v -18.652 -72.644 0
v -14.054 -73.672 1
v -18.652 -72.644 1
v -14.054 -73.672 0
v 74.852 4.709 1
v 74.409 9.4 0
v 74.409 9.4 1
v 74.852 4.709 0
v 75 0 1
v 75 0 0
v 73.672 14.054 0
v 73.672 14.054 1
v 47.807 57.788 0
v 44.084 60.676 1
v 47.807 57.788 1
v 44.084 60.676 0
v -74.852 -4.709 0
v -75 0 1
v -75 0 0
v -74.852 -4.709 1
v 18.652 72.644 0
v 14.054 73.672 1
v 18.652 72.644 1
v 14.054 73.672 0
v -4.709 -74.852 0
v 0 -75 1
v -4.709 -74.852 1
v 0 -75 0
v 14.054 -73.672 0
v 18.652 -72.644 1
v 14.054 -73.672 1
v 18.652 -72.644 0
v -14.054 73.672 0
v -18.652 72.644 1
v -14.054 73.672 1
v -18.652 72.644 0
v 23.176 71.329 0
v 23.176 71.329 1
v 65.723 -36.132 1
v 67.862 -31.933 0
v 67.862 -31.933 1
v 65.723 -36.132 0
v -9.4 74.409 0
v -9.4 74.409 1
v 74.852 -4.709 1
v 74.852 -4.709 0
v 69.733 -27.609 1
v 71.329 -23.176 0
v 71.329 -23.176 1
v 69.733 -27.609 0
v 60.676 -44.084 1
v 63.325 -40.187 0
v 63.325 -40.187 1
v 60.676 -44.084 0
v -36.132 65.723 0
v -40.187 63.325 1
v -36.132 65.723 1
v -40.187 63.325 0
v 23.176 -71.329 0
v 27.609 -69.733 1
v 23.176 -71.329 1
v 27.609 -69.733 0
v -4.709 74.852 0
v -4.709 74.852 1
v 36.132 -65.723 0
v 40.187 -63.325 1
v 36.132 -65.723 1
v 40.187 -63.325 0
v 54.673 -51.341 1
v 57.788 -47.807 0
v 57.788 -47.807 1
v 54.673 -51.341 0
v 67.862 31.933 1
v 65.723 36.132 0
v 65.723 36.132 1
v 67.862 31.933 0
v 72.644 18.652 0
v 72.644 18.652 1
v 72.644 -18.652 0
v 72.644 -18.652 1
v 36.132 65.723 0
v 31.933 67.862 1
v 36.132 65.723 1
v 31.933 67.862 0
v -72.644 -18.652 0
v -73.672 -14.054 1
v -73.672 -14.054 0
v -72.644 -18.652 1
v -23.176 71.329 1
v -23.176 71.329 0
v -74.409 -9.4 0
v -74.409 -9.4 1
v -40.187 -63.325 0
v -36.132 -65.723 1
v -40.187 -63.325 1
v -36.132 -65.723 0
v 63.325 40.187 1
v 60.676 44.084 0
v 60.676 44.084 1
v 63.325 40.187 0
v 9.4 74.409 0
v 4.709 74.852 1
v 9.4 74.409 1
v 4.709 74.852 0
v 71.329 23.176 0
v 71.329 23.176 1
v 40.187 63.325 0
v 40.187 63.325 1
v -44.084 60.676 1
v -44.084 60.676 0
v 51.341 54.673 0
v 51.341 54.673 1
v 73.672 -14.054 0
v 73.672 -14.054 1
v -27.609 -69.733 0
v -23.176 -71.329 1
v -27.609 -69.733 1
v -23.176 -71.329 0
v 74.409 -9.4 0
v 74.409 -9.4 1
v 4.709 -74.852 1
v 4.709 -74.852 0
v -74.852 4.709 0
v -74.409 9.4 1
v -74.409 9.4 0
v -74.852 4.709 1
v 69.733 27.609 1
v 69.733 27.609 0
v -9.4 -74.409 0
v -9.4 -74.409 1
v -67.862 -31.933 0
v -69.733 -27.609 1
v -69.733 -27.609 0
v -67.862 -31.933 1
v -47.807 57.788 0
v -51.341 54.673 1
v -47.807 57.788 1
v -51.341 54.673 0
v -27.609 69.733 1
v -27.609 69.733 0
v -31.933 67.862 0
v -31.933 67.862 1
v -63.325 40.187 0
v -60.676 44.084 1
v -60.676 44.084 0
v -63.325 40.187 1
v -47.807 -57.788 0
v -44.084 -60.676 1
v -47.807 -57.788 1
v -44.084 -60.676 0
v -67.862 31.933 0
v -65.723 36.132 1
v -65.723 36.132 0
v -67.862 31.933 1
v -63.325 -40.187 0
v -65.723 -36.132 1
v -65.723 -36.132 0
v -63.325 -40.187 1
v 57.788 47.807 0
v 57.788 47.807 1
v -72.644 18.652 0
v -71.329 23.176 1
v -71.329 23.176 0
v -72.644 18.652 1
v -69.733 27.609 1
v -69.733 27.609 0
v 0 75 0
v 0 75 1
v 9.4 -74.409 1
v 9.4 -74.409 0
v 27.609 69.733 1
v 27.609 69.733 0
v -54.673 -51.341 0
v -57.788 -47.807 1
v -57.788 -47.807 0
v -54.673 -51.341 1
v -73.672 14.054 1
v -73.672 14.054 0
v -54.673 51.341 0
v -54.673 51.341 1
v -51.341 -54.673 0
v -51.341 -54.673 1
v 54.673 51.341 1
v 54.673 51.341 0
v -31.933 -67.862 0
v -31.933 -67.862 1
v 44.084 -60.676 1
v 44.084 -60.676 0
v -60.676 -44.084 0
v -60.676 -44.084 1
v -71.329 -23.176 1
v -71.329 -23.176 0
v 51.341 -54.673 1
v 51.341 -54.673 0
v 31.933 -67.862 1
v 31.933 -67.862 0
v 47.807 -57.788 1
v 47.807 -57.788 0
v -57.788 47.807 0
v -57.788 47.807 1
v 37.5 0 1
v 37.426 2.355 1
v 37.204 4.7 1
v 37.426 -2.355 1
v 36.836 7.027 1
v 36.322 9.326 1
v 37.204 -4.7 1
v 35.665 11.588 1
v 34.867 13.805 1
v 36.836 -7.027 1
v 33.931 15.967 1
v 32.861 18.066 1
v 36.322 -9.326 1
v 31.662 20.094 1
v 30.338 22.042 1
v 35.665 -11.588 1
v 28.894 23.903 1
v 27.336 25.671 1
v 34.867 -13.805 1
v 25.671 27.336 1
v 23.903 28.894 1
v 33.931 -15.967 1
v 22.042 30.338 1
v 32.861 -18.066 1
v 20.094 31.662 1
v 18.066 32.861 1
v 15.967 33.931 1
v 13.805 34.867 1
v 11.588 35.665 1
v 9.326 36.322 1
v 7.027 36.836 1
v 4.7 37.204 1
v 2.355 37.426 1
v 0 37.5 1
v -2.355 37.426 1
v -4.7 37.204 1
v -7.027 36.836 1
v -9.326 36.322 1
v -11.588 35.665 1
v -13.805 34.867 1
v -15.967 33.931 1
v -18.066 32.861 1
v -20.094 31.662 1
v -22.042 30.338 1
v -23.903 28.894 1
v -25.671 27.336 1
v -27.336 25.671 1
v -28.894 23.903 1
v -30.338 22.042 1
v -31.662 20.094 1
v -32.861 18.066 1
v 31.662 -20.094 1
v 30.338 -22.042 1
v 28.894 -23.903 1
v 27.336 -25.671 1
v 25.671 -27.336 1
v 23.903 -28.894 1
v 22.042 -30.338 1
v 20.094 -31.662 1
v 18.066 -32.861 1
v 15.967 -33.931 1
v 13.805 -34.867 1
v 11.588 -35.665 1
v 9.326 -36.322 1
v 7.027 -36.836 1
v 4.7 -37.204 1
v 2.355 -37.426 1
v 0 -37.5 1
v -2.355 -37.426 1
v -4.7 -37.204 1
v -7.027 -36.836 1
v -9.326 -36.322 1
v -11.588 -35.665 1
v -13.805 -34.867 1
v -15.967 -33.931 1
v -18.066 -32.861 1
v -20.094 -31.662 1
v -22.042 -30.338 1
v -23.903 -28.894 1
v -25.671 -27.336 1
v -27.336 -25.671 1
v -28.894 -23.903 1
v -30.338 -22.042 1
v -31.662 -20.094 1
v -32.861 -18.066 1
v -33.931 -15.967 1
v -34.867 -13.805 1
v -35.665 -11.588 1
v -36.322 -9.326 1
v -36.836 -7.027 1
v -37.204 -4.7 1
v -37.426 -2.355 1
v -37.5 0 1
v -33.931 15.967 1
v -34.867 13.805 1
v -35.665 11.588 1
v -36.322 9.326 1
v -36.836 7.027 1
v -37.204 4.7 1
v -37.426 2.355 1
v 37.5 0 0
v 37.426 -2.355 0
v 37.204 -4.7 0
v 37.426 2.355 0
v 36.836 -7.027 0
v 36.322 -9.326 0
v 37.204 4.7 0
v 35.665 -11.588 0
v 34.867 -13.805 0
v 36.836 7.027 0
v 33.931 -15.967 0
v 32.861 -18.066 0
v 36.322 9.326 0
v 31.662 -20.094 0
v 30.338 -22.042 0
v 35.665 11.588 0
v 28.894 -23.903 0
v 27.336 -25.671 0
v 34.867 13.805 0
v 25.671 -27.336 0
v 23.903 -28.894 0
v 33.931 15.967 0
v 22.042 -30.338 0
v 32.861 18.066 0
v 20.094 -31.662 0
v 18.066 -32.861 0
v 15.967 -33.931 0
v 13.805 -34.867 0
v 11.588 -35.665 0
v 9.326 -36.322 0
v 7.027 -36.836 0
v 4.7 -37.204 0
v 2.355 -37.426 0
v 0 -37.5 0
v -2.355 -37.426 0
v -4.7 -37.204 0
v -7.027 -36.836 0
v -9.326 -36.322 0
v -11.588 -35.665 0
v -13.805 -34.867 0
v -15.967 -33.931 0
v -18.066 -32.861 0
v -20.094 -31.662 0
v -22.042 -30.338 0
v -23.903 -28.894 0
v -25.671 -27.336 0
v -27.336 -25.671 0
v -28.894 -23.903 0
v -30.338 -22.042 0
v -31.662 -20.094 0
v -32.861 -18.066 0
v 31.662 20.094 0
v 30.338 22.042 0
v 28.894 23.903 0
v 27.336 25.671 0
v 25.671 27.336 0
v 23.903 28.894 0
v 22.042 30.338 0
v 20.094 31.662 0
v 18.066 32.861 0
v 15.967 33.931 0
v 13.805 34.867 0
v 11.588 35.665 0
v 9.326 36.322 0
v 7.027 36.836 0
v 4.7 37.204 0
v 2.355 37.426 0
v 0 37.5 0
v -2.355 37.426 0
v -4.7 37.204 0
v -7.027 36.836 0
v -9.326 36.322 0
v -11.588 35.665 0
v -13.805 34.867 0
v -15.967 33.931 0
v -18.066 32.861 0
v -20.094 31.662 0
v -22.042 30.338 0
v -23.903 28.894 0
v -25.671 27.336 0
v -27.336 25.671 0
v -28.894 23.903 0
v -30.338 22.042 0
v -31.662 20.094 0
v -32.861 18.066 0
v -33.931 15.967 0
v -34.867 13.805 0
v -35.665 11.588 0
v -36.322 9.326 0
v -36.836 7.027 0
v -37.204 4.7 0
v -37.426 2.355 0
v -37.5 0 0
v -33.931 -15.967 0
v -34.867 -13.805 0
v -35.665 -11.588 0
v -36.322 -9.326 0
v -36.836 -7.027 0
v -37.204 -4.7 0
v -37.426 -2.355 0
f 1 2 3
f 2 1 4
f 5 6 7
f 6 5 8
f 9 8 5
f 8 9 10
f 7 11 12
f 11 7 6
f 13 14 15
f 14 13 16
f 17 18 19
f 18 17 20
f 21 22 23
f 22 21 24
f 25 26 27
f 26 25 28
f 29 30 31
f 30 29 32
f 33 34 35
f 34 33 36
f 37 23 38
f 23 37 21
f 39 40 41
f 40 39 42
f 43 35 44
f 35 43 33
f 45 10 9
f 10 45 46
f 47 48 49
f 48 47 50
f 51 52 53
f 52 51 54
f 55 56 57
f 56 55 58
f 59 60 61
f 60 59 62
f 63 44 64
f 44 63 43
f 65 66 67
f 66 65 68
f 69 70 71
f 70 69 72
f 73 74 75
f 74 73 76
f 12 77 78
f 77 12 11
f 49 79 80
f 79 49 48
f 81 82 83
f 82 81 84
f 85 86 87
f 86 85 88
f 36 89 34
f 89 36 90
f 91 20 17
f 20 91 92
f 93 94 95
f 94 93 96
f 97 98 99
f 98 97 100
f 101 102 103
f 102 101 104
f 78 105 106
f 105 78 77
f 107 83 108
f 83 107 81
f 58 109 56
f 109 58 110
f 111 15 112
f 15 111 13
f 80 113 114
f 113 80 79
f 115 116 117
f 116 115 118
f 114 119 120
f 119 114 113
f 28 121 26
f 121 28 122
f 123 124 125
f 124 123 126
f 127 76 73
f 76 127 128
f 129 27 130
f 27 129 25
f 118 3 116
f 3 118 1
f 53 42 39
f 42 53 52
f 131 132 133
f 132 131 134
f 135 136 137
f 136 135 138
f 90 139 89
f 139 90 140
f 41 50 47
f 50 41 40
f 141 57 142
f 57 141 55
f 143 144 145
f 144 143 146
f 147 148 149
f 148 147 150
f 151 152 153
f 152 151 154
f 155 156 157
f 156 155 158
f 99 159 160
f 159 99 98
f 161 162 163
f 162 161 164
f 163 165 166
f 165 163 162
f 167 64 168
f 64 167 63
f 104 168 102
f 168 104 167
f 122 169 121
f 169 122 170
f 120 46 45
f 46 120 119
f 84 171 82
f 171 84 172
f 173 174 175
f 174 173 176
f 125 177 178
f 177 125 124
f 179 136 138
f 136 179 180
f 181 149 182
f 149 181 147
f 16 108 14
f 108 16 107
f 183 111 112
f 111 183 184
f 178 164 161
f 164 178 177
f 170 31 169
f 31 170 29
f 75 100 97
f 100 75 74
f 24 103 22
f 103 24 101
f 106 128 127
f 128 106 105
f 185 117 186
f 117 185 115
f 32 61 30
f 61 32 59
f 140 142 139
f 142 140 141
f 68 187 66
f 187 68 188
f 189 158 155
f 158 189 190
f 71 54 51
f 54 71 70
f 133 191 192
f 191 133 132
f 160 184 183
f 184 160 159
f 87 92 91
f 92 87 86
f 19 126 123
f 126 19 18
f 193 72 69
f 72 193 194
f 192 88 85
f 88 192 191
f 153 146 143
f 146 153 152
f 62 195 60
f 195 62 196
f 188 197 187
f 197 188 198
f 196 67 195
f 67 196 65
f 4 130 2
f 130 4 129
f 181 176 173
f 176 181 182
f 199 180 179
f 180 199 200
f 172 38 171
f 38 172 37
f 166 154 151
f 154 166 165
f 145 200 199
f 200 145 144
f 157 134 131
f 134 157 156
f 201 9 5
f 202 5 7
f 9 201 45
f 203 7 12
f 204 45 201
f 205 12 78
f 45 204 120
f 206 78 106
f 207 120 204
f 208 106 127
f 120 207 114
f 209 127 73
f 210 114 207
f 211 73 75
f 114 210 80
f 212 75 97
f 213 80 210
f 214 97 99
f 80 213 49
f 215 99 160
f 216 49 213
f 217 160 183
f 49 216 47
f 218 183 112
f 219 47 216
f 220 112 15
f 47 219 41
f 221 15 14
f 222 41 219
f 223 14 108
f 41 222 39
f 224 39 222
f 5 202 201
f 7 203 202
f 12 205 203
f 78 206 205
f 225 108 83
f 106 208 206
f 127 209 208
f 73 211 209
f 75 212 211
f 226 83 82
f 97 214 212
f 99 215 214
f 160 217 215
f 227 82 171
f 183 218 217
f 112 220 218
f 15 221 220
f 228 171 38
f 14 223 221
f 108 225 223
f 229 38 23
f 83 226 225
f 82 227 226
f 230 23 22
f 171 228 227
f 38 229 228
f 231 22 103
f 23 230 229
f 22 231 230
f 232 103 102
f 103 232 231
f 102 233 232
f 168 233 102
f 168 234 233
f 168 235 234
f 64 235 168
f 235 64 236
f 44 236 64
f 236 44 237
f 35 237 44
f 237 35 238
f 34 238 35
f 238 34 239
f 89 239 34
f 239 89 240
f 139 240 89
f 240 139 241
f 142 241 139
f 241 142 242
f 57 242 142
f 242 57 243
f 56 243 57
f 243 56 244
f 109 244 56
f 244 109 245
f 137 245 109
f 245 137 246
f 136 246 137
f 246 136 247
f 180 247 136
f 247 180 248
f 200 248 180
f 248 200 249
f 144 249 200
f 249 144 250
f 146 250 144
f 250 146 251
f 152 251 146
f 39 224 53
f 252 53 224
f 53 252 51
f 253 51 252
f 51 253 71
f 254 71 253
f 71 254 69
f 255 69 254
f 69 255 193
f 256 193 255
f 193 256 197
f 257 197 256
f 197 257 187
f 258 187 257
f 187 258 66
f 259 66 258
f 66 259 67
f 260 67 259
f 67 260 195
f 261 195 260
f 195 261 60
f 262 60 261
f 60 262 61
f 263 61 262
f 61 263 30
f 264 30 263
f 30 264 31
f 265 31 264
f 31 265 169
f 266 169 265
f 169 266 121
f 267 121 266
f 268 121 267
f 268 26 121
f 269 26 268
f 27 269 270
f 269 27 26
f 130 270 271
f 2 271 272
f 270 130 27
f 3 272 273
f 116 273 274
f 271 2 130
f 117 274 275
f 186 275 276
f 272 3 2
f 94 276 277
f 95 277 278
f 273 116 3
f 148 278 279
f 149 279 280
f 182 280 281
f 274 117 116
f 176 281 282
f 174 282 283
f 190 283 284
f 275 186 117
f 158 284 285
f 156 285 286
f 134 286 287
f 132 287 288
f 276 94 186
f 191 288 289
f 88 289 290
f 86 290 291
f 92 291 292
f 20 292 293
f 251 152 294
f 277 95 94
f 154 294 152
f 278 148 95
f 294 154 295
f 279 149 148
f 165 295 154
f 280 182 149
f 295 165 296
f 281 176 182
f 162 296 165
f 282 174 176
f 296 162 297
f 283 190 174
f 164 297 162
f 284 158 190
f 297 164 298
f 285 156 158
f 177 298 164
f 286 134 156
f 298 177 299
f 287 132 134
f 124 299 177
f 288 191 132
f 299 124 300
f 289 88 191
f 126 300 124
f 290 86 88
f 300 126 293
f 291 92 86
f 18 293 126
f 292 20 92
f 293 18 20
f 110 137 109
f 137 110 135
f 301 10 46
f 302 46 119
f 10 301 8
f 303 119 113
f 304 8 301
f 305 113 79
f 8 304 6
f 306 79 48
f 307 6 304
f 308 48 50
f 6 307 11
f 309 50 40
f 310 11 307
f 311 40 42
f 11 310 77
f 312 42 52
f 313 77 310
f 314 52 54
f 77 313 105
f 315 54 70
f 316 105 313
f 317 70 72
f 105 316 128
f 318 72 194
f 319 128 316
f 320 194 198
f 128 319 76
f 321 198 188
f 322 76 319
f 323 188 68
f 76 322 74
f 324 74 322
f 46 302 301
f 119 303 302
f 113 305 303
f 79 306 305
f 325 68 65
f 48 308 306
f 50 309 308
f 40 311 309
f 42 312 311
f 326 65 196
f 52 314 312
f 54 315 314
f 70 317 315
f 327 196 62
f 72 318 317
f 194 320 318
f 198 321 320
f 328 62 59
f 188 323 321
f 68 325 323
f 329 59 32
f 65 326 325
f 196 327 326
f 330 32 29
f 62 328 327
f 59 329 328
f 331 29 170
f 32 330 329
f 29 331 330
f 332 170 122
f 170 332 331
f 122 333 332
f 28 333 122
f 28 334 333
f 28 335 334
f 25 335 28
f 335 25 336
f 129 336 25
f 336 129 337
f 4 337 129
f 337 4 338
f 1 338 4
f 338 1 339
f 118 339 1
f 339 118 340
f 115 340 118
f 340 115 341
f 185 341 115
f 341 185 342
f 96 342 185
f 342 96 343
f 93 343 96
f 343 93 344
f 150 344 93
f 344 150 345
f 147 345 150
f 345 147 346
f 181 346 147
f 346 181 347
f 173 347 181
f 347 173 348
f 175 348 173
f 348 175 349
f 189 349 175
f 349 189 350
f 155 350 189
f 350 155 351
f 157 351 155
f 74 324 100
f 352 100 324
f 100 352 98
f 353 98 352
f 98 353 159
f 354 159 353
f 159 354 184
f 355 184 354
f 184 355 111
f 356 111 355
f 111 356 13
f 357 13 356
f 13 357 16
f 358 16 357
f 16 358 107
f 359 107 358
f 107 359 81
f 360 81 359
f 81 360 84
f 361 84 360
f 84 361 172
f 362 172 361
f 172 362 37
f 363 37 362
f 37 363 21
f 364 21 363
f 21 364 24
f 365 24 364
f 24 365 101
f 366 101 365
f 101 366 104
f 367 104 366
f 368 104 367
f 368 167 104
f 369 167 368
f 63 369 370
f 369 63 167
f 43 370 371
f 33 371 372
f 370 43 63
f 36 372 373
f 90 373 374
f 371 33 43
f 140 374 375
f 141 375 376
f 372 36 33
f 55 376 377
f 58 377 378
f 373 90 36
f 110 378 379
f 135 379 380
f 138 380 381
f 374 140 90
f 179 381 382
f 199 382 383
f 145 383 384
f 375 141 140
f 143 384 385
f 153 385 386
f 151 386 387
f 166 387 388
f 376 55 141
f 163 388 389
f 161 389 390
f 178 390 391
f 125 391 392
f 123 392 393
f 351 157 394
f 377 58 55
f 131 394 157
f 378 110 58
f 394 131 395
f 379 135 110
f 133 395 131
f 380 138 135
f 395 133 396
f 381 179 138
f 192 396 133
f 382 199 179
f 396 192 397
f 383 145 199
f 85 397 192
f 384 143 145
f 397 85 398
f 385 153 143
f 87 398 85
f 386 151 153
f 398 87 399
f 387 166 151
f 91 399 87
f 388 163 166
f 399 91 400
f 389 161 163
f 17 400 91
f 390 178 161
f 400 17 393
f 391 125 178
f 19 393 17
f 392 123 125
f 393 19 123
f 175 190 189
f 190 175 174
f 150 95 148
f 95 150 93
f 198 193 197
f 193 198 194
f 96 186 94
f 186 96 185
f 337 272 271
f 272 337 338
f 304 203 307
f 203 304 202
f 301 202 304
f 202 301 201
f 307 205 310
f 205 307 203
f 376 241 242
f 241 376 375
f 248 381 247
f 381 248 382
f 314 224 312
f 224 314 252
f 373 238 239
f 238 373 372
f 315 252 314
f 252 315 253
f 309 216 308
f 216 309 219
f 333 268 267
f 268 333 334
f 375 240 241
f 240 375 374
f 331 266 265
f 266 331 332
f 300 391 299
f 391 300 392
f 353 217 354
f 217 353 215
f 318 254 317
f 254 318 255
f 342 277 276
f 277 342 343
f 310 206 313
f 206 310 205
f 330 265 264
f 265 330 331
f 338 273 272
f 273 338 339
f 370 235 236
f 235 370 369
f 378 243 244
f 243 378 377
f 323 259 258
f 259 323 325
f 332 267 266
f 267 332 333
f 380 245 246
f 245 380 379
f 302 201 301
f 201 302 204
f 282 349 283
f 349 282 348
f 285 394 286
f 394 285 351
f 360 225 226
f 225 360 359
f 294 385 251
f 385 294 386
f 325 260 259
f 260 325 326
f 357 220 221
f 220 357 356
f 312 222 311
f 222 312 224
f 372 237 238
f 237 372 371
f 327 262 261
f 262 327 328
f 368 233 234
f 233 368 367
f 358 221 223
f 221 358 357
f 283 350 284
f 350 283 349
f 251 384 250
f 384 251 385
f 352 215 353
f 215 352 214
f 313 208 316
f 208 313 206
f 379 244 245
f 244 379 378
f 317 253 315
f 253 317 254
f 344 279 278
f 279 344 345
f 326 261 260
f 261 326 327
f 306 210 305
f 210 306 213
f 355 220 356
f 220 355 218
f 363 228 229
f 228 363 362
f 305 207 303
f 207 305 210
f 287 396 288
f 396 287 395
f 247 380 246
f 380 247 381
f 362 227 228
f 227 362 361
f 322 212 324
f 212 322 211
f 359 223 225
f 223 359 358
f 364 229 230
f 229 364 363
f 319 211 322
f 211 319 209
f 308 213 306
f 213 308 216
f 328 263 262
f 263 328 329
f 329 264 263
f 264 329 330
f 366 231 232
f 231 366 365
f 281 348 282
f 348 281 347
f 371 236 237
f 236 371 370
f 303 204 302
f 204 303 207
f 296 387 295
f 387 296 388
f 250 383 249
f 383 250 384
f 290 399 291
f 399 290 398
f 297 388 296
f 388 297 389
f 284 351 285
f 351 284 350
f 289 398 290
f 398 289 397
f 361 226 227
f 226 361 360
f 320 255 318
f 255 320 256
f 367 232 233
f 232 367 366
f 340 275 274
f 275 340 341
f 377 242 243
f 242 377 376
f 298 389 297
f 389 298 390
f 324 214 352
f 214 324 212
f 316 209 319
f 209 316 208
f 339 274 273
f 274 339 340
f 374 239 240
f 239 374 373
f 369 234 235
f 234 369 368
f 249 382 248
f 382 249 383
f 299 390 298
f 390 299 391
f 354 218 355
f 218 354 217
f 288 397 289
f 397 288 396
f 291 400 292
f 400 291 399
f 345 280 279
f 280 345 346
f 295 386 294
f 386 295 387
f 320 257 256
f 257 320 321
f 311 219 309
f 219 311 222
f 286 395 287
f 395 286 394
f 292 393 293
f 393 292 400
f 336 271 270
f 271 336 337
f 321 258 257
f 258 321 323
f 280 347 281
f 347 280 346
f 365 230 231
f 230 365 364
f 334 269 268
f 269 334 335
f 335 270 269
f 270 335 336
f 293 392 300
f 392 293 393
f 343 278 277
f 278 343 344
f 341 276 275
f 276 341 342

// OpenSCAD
outer_rad = 150 / 2;
inner_rad = 75 / 2;
thickness = 1;

difference()
{
    cylinder(h = thickness, r = outer_rad, $fn = 100);
    cylinder(h = thickness, r = inner_rad, $fn = 100);
}
